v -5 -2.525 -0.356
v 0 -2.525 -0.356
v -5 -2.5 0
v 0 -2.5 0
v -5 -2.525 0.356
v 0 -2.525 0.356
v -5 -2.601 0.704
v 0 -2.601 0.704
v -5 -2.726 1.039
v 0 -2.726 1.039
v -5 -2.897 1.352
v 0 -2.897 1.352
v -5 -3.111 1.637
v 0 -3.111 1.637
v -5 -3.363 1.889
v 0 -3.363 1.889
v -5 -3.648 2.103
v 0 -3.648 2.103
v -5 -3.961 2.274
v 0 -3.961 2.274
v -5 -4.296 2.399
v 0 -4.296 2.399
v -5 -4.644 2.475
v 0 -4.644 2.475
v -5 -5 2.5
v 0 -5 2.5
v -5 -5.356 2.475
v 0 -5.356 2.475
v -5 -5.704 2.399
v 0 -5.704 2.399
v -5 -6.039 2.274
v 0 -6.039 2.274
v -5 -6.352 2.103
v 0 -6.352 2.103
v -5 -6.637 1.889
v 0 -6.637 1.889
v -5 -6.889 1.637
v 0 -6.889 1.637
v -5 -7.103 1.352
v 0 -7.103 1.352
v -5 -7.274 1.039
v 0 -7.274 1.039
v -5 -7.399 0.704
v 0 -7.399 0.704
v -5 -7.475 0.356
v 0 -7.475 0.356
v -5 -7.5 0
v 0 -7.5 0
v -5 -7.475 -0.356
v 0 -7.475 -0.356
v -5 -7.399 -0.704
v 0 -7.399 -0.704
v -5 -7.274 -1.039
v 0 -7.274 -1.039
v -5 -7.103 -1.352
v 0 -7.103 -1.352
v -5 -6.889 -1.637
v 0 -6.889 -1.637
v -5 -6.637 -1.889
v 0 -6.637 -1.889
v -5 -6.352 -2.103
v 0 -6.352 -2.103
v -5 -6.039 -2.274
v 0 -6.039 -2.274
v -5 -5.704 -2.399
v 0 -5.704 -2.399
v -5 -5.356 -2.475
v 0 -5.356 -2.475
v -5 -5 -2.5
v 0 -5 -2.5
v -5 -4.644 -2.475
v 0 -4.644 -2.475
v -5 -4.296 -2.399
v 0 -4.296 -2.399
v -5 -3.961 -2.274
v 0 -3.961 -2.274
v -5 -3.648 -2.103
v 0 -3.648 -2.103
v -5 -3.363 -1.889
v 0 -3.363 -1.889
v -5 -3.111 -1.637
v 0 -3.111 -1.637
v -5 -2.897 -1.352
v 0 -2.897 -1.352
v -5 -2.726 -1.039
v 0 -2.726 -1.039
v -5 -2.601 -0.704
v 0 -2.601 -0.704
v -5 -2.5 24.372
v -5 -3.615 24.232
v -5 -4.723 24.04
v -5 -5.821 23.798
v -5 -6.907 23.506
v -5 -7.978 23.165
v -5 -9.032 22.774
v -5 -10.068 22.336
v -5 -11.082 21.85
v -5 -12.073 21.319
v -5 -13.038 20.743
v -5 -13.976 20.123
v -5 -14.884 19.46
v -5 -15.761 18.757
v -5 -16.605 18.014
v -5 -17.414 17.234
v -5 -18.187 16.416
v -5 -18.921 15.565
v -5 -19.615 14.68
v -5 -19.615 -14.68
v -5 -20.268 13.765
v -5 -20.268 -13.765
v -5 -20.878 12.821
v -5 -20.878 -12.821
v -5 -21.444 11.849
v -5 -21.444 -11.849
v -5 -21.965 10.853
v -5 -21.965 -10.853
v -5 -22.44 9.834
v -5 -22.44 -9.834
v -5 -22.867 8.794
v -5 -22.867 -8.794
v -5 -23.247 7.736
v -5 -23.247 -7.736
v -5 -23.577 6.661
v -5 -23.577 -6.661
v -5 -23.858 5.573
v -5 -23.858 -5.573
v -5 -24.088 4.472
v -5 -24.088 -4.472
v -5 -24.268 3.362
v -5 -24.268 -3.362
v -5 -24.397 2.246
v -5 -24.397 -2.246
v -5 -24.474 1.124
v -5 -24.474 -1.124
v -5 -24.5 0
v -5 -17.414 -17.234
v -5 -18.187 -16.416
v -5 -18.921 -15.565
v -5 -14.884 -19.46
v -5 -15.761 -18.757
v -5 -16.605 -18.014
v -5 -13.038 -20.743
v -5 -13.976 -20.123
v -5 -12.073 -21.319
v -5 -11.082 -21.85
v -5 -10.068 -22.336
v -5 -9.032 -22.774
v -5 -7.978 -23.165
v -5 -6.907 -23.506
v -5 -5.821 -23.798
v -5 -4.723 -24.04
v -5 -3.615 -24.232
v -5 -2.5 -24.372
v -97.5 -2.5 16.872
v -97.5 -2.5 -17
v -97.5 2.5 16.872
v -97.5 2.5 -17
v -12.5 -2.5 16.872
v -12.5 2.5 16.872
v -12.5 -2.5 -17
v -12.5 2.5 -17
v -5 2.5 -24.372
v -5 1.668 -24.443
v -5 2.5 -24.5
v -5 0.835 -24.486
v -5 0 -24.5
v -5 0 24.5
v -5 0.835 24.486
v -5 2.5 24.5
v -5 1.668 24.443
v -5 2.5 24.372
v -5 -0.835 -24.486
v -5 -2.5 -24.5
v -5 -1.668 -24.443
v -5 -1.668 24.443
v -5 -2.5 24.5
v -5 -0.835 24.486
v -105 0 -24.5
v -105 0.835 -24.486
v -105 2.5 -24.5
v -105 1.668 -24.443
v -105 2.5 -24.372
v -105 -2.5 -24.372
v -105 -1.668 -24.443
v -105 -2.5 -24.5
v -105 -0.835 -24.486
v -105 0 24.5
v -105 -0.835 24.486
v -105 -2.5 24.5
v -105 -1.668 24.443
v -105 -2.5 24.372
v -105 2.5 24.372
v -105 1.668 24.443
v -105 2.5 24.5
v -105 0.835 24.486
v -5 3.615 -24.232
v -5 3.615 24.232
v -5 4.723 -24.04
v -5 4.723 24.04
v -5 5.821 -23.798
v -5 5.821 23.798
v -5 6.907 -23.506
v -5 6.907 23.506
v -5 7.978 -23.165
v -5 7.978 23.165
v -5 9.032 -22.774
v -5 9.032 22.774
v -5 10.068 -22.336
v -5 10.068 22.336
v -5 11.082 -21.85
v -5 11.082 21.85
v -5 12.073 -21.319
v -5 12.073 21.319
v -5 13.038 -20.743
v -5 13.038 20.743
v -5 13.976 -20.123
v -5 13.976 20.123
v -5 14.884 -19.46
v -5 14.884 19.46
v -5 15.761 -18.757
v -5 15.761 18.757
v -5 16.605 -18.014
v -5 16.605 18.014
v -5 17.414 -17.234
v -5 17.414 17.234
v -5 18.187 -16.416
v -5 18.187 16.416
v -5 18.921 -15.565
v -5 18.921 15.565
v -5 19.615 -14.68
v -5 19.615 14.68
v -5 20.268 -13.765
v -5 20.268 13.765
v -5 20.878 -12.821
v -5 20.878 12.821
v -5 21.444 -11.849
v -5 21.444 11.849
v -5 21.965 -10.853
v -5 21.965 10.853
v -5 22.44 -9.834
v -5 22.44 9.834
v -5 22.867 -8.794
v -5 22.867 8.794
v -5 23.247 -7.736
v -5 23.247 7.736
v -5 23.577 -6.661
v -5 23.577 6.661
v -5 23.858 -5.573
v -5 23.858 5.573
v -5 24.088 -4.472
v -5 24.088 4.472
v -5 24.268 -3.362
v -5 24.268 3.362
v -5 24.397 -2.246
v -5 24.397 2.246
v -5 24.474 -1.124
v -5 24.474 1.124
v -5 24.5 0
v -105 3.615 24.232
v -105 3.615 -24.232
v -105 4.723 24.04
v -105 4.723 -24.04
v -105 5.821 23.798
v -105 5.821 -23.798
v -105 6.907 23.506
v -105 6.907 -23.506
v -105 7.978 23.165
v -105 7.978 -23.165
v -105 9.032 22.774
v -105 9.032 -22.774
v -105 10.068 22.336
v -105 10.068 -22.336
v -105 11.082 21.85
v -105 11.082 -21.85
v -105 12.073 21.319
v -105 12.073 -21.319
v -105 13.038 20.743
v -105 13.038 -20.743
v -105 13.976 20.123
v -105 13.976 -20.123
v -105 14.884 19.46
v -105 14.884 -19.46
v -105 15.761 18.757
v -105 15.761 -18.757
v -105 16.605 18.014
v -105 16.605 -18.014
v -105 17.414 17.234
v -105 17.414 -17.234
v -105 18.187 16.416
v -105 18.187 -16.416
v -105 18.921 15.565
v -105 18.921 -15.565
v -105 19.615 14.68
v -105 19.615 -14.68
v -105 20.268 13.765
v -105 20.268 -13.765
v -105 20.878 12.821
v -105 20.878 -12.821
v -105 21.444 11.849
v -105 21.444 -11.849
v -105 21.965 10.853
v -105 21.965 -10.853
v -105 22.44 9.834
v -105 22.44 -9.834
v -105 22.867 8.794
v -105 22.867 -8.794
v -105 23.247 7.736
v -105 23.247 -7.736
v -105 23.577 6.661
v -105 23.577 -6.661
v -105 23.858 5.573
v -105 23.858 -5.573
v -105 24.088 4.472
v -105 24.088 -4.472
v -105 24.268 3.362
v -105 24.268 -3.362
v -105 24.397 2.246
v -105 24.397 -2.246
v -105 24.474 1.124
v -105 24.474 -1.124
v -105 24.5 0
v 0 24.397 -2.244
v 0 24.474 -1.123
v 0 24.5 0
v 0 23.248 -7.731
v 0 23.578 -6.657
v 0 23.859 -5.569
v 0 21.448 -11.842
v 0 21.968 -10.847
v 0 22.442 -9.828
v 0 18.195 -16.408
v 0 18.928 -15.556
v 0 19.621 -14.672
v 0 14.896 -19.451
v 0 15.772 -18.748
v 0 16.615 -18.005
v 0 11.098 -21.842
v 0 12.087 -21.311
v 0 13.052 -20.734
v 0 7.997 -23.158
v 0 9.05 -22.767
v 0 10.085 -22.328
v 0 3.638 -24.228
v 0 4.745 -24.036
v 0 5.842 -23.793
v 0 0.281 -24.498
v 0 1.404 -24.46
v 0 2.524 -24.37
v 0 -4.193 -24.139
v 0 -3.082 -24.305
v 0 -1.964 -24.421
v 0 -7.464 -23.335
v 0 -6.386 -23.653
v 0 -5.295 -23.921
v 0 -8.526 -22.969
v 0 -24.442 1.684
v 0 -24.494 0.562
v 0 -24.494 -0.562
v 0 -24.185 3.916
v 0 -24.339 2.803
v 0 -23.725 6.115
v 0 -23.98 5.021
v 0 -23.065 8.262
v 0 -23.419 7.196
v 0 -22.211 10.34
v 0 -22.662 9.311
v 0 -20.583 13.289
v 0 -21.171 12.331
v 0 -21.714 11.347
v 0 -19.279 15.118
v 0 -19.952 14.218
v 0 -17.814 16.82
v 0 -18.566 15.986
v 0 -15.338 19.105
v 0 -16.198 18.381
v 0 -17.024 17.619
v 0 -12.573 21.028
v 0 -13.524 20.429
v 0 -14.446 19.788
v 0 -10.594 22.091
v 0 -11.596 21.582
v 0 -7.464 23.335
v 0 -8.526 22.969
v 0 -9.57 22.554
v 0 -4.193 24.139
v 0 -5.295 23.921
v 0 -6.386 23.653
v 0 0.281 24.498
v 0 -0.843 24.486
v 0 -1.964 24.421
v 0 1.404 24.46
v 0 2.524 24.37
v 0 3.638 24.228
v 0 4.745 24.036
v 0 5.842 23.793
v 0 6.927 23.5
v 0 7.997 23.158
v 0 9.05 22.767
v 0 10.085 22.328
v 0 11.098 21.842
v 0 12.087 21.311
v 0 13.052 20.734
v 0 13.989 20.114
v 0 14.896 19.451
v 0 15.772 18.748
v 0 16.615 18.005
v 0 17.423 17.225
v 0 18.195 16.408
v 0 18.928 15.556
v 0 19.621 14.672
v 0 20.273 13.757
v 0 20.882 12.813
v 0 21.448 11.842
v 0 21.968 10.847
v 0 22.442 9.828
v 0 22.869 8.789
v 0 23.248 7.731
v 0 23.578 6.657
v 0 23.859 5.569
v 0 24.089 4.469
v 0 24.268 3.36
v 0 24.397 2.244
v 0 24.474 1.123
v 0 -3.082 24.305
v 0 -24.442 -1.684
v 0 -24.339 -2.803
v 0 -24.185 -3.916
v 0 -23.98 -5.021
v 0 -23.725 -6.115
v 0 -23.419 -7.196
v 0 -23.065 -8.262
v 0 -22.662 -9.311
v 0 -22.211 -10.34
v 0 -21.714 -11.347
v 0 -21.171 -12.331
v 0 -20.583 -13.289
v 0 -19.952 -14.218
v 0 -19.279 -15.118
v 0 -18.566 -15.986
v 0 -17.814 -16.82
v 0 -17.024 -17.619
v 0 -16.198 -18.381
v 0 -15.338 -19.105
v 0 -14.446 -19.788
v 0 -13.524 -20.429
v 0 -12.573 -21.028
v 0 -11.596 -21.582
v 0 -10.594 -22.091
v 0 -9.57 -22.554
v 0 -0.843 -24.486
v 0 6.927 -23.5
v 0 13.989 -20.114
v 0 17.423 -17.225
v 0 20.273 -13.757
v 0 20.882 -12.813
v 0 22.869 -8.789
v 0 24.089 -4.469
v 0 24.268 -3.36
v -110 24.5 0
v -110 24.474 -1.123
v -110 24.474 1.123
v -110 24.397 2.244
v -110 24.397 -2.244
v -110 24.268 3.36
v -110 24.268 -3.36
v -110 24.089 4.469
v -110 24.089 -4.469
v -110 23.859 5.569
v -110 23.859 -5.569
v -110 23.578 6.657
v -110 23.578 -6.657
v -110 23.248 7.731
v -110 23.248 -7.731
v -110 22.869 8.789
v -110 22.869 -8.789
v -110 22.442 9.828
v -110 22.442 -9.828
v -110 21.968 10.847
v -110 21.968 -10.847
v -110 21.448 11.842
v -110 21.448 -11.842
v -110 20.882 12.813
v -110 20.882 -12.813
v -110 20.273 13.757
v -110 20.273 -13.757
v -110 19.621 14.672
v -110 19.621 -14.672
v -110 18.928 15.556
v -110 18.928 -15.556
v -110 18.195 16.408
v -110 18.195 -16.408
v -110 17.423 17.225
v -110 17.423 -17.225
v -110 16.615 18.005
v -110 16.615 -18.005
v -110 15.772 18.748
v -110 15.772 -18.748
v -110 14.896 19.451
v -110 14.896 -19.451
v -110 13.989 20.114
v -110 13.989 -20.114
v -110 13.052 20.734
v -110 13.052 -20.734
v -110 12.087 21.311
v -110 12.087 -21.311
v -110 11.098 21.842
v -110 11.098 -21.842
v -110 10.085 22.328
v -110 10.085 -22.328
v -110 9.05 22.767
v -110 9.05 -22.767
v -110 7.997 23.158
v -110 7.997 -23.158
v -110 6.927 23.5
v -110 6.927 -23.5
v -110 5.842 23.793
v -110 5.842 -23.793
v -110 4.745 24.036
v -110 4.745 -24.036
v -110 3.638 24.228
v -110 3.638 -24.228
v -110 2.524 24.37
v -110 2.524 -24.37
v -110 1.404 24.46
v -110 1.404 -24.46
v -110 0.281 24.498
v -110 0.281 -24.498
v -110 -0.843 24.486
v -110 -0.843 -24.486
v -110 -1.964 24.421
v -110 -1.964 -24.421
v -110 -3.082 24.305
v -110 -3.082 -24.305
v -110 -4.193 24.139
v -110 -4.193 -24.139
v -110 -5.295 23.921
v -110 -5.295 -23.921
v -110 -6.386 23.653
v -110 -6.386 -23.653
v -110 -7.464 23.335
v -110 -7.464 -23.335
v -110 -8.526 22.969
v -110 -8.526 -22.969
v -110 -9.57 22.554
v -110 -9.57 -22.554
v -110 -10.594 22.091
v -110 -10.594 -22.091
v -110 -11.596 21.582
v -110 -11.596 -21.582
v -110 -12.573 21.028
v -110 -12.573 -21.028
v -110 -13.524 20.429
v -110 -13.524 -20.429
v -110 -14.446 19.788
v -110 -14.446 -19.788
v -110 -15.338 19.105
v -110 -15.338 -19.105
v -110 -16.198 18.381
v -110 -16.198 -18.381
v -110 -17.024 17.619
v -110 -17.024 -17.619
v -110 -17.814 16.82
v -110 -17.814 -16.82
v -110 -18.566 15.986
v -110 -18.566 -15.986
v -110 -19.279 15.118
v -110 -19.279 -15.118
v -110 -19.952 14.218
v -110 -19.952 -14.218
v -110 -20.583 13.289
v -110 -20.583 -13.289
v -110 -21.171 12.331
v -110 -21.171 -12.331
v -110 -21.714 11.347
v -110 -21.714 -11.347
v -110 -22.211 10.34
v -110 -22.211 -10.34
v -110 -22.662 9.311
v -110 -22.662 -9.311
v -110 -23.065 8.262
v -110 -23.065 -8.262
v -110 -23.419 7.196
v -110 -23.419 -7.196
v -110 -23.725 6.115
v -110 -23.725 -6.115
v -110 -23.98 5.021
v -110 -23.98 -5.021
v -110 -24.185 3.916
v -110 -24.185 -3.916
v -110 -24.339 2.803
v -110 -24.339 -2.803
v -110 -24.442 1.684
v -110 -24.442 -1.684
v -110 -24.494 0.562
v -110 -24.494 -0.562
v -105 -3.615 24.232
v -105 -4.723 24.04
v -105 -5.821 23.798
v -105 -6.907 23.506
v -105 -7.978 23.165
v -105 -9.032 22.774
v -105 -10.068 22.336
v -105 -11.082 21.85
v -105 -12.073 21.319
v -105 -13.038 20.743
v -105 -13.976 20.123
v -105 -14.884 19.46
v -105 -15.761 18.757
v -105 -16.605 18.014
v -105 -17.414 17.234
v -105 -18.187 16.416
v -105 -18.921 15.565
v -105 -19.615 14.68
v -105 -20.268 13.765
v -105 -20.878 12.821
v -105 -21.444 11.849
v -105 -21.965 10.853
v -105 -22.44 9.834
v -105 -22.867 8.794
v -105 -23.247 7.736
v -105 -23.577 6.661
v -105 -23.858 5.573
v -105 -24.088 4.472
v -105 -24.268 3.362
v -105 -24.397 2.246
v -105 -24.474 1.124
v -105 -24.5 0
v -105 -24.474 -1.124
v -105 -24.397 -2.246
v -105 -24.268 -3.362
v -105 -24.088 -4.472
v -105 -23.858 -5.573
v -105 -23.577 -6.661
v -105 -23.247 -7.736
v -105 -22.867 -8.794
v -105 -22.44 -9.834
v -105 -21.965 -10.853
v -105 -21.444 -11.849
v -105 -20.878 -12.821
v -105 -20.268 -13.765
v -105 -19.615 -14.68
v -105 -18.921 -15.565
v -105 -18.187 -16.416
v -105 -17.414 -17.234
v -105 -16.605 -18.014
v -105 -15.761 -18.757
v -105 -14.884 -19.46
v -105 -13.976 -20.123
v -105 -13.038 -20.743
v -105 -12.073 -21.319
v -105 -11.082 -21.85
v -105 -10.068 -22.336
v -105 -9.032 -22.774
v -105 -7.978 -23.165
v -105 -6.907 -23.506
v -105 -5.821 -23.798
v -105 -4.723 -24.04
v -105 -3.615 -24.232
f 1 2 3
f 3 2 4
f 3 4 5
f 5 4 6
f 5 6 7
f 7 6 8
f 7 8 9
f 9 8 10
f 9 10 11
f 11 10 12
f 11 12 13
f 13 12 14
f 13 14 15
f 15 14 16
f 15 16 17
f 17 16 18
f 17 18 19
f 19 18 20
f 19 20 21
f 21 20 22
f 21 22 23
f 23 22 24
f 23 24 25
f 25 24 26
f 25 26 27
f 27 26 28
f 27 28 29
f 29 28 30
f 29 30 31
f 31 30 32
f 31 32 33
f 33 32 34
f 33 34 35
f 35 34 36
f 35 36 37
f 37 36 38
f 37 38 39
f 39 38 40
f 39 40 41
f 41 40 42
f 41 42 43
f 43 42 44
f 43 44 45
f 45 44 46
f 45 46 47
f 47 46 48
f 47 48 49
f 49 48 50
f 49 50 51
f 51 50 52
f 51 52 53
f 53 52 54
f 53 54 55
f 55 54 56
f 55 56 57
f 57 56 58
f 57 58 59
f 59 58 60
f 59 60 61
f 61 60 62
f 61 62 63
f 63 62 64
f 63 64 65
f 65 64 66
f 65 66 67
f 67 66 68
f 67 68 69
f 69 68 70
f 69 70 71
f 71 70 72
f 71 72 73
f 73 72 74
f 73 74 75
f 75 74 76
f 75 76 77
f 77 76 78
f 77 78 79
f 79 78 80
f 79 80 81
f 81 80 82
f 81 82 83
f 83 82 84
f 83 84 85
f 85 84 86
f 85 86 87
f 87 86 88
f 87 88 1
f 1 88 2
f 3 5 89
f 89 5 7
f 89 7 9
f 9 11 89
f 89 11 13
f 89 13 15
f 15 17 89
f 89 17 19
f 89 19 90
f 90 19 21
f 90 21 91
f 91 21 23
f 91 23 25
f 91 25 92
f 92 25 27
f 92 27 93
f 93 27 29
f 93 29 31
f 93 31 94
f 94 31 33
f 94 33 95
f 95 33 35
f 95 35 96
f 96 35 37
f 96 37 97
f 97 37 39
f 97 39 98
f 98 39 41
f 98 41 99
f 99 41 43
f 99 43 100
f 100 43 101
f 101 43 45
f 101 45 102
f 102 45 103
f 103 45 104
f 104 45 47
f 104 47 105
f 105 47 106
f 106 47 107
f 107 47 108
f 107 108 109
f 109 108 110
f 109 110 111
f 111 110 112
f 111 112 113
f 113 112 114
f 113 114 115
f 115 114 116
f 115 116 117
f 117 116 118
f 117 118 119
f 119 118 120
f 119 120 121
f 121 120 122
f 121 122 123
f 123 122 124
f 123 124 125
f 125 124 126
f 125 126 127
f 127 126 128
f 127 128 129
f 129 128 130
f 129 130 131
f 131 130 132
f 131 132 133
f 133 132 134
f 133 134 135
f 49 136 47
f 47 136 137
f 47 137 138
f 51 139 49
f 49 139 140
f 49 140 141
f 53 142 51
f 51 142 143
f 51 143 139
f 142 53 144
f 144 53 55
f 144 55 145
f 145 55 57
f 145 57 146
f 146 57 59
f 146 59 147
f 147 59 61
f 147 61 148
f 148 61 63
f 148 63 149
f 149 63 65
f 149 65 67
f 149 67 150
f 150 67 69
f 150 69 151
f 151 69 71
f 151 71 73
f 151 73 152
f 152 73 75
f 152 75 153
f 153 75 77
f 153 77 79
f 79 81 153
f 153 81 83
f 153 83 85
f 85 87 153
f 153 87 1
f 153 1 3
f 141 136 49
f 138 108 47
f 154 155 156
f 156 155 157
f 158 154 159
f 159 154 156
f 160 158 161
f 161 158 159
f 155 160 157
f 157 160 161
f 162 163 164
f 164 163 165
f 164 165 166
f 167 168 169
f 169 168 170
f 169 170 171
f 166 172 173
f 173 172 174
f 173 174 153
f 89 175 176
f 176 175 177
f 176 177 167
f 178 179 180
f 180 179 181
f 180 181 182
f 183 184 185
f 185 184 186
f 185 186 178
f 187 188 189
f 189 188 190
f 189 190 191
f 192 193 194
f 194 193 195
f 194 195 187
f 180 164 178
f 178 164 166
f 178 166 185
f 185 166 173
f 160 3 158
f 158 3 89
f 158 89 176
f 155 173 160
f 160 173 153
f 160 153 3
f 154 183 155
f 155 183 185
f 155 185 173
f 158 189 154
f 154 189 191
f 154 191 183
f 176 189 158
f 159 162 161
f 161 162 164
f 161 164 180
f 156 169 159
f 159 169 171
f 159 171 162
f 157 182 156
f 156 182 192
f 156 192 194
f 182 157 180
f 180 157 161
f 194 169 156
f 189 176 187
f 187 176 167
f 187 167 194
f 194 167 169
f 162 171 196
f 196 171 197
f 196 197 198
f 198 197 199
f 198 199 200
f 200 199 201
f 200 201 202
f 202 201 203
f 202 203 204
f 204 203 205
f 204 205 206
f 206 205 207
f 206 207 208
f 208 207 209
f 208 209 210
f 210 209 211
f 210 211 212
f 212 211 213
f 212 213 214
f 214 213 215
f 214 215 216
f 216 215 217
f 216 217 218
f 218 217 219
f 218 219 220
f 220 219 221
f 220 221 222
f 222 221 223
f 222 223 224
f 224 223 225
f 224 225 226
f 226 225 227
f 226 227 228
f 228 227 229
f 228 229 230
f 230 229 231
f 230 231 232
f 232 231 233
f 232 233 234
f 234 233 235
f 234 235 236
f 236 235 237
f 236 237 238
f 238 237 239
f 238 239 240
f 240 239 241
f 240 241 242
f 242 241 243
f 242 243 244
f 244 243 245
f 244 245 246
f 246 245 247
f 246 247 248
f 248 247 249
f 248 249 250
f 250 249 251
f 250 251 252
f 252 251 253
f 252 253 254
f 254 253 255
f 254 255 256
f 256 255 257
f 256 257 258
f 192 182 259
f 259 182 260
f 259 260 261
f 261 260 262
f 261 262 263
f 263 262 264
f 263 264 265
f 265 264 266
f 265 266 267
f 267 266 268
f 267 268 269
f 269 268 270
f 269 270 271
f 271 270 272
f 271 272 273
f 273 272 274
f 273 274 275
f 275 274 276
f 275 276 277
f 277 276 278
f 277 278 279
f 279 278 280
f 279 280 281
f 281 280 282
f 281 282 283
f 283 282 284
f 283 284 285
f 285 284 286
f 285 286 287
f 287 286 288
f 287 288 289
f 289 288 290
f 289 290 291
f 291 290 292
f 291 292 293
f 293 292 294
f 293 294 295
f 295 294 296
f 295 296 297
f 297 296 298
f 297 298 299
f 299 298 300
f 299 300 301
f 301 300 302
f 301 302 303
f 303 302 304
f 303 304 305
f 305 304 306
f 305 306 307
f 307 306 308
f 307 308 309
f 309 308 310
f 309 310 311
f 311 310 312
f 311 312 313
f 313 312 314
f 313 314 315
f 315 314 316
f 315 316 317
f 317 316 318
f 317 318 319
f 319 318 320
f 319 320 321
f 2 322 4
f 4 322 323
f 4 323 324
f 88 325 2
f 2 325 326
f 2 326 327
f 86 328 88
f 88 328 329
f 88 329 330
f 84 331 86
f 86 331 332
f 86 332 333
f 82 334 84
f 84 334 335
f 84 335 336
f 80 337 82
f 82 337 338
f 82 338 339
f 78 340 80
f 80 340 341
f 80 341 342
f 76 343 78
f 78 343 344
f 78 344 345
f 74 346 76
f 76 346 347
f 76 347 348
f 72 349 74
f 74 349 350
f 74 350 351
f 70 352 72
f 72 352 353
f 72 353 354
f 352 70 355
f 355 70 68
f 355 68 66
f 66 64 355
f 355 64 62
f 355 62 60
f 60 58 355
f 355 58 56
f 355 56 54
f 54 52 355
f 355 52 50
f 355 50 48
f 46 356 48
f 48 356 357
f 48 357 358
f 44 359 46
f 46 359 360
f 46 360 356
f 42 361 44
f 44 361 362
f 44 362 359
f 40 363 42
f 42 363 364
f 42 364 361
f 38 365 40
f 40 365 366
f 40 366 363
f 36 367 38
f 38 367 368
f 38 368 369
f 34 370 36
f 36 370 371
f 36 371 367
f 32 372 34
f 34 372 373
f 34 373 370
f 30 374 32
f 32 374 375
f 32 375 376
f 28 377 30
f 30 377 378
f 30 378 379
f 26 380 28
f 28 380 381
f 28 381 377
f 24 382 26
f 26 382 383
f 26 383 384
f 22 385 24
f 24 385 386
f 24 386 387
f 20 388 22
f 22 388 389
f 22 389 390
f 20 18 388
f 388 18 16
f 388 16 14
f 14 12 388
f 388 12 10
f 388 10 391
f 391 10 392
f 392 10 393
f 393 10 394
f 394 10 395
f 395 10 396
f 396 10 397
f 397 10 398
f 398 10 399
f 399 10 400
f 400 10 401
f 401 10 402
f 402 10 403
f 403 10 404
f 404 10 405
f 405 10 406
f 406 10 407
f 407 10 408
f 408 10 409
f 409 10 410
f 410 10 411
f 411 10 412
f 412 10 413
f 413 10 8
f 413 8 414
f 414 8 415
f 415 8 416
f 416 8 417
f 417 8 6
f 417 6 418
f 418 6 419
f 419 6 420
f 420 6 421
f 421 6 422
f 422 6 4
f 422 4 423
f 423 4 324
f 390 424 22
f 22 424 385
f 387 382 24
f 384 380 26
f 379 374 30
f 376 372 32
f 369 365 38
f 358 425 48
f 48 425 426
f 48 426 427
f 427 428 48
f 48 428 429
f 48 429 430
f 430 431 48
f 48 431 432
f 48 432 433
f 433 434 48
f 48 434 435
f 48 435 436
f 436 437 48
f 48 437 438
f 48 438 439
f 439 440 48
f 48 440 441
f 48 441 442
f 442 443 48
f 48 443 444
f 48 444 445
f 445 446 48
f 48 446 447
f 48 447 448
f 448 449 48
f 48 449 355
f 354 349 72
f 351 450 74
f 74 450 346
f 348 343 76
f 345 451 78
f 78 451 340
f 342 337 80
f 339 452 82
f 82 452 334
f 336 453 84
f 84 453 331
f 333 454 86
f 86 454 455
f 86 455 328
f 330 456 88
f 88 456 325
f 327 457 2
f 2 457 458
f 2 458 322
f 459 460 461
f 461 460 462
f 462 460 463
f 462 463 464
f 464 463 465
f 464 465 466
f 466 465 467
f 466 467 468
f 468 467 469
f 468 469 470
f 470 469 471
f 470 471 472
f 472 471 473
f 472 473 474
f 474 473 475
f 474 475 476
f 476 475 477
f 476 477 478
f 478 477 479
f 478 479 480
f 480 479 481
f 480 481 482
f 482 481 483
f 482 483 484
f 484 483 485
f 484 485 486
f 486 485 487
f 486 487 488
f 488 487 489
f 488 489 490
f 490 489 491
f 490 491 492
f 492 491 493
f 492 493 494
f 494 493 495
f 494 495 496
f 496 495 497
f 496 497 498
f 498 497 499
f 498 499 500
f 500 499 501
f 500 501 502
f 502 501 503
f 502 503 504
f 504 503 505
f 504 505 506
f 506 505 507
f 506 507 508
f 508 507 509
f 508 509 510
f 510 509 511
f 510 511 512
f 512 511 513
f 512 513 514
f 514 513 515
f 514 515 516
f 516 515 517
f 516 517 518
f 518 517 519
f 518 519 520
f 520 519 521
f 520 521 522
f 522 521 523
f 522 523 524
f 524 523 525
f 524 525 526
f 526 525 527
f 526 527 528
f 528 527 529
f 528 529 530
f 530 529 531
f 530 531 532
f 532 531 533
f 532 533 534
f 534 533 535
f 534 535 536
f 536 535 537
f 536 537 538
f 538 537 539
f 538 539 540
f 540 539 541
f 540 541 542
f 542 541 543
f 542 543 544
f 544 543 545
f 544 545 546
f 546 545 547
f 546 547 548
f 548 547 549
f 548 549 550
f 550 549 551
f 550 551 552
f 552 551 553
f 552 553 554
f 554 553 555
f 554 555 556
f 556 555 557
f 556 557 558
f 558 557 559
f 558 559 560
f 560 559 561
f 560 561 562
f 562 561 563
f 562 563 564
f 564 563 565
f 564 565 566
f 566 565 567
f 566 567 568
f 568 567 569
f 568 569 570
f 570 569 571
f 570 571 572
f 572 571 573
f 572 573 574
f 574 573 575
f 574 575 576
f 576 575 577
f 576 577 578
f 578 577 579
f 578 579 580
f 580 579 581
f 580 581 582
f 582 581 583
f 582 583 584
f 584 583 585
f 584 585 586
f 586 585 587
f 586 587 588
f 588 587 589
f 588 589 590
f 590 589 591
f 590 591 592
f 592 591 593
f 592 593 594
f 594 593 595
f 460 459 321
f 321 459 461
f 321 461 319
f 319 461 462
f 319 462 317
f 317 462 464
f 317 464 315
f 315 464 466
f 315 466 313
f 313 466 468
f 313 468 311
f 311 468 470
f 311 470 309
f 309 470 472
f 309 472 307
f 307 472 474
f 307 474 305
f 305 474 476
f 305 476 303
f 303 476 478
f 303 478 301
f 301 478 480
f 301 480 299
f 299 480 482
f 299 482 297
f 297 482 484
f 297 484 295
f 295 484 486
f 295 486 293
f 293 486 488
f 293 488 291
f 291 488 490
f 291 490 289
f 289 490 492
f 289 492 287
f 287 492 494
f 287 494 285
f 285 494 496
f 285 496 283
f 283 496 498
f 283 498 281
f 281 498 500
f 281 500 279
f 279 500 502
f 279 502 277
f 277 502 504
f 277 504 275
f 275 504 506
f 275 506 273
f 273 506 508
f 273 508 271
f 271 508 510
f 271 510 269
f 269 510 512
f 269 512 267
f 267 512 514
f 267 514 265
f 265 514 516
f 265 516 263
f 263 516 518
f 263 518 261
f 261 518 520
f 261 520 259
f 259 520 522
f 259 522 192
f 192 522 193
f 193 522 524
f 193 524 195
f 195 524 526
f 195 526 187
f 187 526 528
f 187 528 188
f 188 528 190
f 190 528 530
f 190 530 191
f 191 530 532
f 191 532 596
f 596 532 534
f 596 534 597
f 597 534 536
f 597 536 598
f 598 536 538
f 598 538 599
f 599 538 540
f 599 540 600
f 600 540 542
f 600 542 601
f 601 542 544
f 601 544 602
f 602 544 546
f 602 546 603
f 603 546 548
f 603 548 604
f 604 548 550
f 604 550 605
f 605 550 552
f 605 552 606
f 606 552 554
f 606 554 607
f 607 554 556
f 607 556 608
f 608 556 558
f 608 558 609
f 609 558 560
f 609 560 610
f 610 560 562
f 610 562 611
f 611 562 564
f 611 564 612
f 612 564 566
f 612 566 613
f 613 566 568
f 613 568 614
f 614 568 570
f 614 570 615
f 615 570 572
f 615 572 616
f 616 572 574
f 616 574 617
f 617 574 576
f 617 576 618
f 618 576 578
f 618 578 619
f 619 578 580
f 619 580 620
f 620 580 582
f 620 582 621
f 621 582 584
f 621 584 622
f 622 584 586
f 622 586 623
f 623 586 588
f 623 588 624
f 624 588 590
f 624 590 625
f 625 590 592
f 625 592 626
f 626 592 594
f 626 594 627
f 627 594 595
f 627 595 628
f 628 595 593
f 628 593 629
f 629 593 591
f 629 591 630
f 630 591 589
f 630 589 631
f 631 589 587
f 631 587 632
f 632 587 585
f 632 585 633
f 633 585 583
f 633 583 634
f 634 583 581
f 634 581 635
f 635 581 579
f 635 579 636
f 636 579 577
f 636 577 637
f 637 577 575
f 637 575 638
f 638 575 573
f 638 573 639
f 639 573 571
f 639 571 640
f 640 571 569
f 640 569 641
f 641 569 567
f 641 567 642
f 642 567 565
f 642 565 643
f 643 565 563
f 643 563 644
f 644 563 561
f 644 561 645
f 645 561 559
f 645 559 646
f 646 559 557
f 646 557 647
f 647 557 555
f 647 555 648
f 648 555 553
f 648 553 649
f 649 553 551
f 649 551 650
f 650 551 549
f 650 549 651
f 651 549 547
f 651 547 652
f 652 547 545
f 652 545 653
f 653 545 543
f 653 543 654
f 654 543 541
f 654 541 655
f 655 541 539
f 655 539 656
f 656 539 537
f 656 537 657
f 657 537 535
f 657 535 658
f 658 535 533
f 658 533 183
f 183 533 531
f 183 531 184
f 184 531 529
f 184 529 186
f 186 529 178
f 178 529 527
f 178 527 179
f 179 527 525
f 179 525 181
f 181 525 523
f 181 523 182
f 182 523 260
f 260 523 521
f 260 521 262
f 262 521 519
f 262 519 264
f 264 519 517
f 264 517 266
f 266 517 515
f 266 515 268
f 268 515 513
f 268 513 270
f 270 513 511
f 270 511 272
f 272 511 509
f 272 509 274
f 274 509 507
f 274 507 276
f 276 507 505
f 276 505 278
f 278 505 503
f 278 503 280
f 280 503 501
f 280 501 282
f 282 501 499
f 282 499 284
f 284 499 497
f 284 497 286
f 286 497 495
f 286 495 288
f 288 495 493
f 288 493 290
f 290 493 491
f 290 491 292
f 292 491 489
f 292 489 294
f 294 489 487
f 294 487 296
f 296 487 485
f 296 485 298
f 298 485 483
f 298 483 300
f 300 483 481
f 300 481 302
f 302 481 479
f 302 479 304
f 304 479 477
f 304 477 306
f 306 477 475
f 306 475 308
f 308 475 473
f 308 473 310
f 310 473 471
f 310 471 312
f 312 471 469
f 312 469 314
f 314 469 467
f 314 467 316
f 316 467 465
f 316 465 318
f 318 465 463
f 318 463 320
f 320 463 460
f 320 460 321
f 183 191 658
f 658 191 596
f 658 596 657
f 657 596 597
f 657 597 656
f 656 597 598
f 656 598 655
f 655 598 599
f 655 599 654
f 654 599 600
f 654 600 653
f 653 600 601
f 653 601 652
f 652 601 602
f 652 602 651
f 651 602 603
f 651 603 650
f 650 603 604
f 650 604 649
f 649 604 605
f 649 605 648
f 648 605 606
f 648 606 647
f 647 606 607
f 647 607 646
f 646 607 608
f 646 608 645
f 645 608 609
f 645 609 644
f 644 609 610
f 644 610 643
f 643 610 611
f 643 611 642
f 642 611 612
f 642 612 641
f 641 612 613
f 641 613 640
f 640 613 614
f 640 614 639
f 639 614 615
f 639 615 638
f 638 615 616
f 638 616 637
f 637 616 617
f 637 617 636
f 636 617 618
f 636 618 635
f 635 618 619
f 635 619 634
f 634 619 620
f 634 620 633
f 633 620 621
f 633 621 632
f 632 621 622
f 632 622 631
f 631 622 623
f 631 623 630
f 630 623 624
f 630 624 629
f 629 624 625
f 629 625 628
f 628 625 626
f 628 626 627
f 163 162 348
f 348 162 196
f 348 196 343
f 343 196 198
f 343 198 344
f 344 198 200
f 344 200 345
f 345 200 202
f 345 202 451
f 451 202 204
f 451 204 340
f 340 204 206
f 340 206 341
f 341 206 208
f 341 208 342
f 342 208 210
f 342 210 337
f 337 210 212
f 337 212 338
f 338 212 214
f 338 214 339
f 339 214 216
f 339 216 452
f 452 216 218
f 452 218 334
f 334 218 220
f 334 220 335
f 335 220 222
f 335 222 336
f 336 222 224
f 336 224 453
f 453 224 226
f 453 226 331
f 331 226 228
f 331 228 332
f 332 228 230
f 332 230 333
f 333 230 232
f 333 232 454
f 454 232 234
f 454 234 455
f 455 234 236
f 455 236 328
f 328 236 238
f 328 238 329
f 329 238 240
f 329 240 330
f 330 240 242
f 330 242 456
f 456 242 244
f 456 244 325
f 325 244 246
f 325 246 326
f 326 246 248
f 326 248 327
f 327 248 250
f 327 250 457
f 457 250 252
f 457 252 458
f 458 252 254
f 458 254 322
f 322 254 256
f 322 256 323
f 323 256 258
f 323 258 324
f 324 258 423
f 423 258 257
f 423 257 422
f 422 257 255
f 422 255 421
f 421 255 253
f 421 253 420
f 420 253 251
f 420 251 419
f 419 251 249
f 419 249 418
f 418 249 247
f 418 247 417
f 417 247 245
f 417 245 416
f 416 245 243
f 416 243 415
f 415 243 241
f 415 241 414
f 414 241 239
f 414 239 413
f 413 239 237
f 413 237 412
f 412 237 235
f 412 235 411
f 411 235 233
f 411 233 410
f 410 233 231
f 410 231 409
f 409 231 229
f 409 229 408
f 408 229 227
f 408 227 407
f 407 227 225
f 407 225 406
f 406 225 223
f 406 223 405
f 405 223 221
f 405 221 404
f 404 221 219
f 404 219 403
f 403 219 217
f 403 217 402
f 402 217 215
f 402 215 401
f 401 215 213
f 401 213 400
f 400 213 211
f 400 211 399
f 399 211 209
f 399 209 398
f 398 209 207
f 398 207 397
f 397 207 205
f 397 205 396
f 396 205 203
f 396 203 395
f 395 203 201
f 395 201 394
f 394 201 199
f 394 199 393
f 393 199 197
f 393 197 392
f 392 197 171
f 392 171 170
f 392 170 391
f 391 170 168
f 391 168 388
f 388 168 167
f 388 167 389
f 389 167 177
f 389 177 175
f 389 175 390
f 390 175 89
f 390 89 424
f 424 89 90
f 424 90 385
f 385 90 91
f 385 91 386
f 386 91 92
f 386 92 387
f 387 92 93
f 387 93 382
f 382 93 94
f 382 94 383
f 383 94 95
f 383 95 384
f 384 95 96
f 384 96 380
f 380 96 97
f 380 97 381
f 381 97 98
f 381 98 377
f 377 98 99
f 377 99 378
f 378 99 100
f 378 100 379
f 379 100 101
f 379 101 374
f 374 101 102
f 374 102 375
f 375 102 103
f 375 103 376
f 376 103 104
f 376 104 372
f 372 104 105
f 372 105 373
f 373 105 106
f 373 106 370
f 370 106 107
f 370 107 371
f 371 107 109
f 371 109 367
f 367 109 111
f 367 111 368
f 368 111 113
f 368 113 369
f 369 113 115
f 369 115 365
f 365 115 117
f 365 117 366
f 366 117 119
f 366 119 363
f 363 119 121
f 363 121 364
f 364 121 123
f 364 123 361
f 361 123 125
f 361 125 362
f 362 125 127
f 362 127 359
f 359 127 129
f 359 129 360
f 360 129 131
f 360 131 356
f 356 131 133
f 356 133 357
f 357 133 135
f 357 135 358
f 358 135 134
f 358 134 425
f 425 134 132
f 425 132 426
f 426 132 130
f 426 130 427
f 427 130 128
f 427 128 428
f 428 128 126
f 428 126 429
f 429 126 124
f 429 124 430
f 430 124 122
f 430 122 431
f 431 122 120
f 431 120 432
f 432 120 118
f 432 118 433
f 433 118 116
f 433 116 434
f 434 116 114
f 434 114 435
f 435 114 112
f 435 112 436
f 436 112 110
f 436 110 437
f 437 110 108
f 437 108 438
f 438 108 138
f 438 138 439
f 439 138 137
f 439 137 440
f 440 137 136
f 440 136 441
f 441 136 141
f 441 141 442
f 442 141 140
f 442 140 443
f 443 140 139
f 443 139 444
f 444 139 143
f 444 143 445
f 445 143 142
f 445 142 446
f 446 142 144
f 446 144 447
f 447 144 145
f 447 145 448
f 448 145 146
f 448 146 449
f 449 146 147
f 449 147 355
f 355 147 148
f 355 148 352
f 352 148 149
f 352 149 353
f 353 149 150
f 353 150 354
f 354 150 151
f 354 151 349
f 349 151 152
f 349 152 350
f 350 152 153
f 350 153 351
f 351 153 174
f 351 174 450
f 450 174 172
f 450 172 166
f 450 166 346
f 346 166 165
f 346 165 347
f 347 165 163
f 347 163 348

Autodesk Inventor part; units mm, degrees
ref_plane "YZ Plane" through (0, 0, 0) normal (1, 0, 0) x (0, 1, 0)
ref_plane "XZ Plane" through (0, 0, 0) normal (0, 1, 0) x (-1, 0, 0)
ref_plane "XY Plane" through (0, 0, 0) normal (0, 0, 1) x (1, 0, 0)
sketch "Sketch1" plane through (0, 0, 0) normal (0, 1, 0) x (-1, 0, 0)
  point P0 (0, 0)
sketch "Sketch2" plane through (0, 0, 0) normal (0, 0, 1) x (1, 0, 0)
  line L0 (0, 0) -> (0, 24.5)
  line L1 (0, 24.5) -> (-5, 24.5)
  line L2 (-5, 24.5) -> (-5, 2.5)
  line L3 (-5, 2.5) -> (-105, 2.5)
  line L4 (-105, 2.5) -> (-105, 24.5)
  line L5 (-105, 24.5) -> (-110, 24.5)
  line L6 (-110, 24.5) -> (-110, 0)
  line L7 (-110, 0) -> (0, 0)
  line L8 (-105, 2.5) -> (-5, 2.5)
  line L9 (-5, 2.5) -> (-5, -2.5)
  line L10 (-5, -2.5) -> (-105, -2.5)
  line L11 (-105, -2.5) -> (-105, 2.5)
  point P0 (-5, 2.5)
  dimension "d0" = 24.5
  dimension "d1" = 5
  dimension "d2" = 22
  dimension "d3" = 100
  dimension "d4" = 5
  dimension "d6" = 5
revolve "Revolution1" add sketch "Sketch2" angle 360 about axis through (-110, 0, 0) along (1, 0, 0) contours L7 L9 L2 L1 L0 | L7 L11 L3 L9 | L7 L6 L5 L4 L11
extrude "Extrusion1" add sketch "Sketch2" along normal mid plane 49 contours L9 L10 L11 L7 | L7 L11 L3 L9
sketch "Sketch3" plane through (-105, 2.5, -24.5) normal (0, 1, 0) x (1, 0, 0)
  line L0 (100, 0) -> (0, 0) projected
  line L1 (100, -48.8721) -> (100, -0.1279) projected
  line L2 (0, 0) -> (100, 0)
  line L3 (100, 0) -> (100, -48.8721)
  line L4 (100, -48.8721) -> (0, -48.8721)
  line L5 (0, -48.8721) -> (0, 0)
  line L6 (7.5, -7.5) -> (92.5, -7.5)
  line L7 (92.5, -7.5) -> (92.5, -41.3721)
  line L8 (92.5, -41.3721) -> (7.5, -41.3721)
  line L9 (7.5, -41.3721) -> (7.5, -7.5)
  point P0 (105, -24.5)
  dimension "d9" = 7.5
extrude "Extrusion2" cut sketch "Sketch3" against normal mid plane 20 contours L6 L7 L8 L9
sketch "Sketch4" plane through (0, 0, 0) normal (1, 0, 0) x (0, 1, 0)
  circle A0 centre (-5, 0) radius 2.5
  point P0 (0, 0)
  dimension "d13" = 5
  dimension "d16" = 5
extrude "Extrusion3" cut sketch "Sketch4" against normal blind 10
properties part number "electronicsbay" material "ABS Plastic"
